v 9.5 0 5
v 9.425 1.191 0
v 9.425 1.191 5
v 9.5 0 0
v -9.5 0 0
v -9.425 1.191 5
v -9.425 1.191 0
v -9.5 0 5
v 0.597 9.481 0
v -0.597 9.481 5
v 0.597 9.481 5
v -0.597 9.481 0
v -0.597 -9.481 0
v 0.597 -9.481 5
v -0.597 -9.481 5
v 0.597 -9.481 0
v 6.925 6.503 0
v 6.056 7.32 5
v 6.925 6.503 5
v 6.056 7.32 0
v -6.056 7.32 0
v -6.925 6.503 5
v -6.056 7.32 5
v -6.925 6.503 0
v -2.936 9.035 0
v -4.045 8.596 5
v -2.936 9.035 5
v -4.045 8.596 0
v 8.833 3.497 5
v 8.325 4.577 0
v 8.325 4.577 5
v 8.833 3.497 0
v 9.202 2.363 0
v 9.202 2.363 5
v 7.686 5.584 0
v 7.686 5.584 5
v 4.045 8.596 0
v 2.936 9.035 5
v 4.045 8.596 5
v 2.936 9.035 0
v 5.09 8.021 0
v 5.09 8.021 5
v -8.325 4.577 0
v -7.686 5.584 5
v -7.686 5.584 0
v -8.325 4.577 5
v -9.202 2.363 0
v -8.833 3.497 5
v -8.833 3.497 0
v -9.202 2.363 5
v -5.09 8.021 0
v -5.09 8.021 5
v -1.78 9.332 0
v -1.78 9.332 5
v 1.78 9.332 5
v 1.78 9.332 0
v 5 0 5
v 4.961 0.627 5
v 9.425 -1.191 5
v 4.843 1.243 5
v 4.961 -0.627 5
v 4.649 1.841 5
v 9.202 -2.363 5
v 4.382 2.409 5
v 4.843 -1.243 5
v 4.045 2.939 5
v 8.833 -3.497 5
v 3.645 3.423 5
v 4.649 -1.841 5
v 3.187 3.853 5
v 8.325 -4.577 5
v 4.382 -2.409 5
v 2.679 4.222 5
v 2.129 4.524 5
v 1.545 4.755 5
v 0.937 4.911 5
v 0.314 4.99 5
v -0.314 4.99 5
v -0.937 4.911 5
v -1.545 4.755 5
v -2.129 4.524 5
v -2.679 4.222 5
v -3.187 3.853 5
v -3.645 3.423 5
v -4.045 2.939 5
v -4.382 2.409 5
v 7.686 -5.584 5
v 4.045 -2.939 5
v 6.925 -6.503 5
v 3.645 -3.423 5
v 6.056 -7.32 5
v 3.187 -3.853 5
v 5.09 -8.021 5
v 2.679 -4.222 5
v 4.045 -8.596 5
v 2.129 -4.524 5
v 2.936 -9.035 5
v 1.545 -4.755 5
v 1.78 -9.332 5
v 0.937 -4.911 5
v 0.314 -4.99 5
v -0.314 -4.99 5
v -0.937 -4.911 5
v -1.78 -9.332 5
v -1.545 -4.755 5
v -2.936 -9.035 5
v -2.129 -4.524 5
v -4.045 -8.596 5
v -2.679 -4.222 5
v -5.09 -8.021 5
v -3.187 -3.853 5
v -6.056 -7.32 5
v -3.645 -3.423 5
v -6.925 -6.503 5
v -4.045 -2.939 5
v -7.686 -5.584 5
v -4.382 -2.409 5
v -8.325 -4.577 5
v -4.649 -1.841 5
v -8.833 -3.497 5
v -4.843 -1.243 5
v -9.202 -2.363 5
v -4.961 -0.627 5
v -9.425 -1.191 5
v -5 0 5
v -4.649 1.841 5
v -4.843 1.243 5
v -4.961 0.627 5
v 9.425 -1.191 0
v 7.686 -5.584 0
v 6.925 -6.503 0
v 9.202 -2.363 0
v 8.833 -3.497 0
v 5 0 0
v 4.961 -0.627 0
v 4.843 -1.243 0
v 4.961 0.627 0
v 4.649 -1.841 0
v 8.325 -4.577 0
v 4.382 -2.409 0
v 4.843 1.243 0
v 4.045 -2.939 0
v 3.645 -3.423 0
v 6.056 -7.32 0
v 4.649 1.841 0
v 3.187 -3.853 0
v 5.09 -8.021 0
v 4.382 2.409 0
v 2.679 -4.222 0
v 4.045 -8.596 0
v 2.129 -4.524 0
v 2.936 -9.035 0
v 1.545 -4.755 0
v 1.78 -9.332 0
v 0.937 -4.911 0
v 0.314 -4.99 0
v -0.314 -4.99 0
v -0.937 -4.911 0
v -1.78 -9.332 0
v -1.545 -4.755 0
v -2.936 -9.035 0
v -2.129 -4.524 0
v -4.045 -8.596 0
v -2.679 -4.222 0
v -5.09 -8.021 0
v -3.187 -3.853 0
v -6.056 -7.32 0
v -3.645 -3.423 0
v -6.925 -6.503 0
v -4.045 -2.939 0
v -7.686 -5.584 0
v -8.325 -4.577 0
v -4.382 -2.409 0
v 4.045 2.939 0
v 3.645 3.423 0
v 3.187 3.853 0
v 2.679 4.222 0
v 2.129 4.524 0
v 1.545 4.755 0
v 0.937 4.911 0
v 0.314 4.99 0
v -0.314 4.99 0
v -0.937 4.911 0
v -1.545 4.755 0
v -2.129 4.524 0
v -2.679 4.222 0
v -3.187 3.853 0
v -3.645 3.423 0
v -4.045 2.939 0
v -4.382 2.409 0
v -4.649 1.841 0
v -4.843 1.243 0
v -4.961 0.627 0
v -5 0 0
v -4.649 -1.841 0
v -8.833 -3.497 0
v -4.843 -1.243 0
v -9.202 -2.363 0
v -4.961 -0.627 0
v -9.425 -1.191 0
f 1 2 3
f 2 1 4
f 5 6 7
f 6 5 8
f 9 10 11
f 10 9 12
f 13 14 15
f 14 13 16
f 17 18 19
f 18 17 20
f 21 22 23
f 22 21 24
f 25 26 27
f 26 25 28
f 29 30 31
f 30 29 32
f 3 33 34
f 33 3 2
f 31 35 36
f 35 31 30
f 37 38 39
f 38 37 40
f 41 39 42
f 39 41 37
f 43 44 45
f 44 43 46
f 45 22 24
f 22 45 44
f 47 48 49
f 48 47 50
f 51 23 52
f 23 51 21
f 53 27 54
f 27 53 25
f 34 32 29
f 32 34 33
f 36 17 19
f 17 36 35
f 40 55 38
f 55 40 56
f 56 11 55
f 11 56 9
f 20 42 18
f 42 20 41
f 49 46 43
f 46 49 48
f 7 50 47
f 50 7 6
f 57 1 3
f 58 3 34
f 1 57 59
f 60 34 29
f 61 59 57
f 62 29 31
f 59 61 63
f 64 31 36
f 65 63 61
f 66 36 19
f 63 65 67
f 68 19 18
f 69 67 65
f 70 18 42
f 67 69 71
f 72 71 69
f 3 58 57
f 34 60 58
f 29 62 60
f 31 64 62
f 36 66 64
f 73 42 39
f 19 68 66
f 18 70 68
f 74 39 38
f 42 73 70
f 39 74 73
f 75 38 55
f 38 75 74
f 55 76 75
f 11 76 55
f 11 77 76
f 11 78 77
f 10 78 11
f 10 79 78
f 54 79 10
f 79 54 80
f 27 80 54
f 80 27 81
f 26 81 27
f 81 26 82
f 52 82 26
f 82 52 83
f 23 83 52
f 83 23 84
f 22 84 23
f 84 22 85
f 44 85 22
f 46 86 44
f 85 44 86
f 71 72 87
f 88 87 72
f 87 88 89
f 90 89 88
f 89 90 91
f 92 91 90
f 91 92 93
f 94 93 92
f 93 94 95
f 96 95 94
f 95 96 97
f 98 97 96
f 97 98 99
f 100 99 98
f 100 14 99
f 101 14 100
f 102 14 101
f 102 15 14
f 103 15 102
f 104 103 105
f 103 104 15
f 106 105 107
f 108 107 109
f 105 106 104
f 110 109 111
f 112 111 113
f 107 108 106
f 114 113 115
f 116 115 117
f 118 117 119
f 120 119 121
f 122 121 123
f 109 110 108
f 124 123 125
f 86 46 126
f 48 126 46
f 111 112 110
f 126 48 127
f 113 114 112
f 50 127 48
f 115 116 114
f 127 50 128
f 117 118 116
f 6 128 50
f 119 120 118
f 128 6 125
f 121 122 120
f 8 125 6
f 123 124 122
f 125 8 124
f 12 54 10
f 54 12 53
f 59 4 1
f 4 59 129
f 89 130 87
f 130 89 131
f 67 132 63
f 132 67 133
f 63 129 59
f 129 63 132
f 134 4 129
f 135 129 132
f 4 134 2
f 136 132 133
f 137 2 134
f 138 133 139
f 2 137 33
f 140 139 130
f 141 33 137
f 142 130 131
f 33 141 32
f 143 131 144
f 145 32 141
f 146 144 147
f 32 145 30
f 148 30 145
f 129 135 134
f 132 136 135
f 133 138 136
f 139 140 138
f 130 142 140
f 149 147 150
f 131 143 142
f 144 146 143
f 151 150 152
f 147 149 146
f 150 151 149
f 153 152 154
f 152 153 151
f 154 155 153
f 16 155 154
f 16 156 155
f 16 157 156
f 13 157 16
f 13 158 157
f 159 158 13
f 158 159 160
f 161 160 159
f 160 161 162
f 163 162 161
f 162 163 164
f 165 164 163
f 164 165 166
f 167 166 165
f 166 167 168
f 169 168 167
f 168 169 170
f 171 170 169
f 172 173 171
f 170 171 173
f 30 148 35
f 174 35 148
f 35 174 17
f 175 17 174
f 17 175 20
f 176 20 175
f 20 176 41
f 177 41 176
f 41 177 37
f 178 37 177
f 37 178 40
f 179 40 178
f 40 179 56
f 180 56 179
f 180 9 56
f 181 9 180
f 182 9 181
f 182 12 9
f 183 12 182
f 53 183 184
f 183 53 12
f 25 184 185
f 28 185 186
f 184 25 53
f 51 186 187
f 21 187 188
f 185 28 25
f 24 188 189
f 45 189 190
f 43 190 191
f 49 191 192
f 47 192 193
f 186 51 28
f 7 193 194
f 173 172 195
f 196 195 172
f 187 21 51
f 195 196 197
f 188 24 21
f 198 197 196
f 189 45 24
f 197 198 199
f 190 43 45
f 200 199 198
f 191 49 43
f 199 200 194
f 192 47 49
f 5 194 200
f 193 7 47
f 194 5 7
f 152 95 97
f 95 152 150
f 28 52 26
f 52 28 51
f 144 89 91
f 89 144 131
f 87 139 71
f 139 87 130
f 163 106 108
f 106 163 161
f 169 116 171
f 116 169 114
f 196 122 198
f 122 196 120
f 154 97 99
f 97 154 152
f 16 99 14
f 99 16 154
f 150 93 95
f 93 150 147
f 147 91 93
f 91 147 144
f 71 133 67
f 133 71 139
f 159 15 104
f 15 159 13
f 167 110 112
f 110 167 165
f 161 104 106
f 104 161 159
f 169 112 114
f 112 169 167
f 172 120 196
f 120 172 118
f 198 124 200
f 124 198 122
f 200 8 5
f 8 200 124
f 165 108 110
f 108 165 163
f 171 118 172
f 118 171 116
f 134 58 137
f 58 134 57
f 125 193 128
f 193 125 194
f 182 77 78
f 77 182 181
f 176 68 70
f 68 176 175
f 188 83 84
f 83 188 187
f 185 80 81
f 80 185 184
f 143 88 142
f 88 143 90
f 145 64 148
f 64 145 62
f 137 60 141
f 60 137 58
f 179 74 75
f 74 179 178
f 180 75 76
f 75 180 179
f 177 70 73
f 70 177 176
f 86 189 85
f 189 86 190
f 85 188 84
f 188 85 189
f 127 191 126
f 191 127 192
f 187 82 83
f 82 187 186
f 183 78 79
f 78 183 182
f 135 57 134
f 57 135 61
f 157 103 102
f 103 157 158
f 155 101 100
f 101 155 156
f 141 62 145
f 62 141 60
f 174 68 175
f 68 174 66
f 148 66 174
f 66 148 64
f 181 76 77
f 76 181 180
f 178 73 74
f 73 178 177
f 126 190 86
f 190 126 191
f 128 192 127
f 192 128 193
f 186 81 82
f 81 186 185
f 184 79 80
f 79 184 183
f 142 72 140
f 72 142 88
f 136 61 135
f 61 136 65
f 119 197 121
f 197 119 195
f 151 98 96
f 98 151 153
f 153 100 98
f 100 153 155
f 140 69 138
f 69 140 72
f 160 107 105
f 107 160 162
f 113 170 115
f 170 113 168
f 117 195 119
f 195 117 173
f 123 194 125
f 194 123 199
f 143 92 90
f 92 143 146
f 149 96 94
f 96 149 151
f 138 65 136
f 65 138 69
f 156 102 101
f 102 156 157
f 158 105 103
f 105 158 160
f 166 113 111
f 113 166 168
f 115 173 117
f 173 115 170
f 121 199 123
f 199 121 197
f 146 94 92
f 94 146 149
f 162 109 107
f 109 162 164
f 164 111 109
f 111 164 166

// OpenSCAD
$fn = 50;


difference() {
	union() {
		cylinder(h = 5, r = 9.5000000000);
	}
	union() {
		cylinder(h = 5, r = 5.0000000000);
	}
}
